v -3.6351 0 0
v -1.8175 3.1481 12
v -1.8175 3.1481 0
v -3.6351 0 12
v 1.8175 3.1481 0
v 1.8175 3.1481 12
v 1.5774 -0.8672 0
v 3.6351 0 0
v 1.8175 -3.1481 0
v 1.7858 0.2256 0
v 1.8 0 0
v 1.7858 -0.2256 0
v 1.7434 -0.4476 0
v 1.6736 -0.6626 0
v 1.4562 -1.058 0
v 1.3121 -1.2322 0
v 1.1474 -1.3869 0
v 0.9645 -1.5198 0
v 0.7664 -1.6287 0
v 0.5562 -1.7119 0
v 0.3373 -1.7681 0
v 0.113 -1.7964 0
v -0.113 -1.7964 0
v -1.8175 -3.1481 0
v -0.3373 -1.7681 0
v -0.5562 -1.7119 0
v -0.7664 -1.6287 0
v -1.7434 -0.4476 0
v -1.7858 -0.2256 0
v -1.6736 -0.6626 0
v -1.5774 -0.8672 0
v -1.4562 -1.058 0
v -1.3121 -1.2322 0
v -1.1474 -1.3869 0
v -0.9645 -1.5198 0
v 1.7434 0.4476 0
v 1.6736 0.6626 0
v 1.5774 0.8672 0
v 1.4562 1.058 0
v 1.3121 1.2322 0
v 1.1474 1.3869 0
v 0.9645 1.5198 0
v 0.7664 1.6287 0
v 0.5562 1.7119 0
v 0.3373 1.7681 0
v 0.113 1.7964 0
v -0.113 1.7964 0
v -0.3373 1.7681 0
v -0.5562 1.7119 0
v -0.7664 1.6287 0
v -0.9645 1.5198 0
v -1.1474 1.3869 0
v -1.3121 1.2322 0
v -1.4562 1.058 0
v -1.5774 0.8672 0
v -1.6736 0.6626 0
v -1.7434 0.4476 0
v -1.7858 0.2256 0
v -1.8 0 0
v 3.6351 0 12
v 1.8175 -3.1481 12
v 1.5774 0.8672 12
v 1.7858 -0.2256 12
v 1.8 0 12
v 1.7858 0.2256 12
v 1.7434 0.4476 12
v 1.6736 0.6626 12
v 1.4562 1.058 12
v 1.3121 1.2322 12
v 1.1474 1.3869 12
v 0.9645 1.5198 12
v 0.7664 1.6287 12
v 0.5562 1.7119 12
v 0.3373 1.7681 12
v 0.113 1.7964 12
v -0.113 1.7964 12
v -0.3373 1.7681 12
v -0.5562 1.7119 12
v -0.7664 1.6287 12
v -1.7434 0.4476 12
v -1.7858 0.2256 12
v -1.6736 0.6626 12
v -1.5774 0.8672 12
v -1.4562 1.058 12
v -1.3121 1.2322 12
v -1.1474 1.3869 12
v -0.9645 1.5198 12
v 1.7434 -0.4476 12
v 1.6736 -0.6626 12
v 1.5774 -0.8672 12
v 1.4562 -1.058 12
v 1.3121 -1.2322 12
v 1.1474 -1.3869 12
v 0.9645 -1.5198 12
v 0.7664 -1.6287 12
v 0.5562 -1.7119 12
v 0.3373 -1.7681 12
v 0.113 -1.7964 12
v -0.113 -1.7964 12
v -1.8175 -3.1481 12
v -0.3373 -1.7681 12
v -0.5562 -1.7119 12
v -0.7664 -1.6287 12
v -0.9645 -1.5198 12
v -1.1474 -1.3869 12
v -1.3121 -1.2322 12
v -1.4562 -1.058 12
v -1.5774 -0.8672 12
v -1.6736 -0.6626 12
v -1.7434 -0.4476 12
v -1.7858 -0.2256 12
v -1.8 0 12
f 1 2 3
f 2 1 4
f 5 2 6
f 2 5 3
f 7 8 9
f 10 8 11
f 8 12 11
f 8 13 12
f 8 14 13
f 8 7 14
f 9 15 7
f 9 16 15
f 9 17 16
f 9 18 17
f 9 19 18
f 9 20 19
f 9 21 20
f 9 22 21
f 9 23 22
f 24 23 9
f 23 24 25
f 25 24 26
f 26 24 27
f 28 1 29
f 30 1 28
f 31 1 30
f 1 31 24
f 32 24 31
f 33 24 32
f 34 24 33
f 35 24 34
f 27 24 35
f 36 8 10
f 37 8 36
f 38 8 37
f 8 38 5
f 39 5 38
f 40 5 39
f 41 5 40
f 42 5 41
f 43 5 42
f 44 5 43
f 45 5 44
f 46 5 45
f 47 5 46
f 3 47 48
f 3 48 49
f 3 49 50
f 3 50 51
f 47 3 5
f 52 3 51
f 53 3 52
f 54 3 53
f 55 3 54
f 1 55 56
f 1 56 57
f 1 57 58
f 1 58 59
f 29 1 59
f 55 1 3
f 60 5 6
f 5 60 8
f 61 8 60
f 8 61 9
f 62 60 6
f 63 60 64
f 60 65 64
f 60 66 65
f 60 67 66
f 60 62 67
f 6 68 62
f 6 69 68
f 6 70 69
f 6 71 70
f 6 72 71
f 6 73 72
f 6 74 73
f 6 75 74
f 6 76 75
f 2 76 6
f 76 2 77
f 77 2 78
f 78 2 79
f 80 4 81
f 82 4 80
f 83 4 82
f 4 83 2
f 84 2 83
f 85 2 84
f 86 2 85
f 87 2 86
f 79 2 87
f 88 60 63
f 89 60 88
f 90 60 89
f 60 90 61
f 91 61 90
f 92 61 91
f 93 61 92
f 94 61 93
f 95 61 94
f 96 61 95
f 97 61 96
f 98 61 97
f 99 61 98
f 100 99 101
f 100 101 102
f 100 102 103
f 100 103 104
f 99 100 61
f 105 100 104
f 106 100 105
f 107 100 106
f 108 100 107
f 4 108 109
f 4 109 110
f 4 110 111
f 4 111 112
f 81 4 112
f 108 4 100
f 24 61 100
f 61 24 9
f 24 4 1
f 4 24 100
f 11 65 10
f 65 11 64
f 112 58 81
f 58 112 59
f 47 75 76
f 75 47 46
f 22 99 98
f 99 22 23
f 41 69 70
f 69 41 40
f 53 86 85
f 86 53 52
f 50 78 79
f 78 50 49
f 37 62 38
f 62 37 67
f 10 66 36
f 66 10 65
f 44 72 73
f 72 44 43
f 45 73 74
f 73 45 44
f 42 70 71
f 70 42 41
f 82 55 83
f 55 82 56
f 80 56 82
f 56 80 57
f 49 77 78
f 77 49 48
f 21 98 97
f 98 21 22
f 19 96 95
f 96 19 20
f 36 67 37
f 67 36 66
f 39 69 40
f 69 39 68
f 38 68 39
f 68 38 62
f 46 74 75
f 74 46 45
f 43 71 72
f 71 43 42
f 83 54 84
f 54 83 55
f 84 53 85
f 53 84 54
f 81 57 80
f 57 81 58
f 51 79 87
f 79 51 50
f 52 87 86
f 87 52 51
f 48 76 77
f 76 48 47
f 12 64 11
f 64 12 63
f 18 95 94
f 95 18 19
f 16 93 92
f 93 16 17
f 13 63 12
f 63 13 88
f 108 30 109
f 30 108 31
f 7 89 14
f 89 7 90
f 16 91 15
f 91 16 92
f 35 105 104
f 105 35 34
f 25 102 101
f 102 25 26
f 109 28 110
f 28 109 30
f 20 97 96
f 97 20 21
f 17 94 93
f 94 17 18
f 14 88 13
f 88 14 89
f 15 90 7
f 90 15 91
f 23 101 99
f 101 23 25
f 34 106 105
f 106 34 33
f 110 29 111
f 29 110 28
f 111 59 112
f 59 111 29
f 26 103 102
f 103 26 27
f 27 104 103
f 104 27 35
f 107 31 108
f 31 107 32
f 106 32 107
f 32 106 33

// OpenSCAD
$fn = 50;


difference() {
	union() {
		translate(v = [0, 0, 0]) {
			rotate(a = [0, 0, 0]) {
				translate(v = [0, 0, 0]) {
					rotate(a = [0, 0, 0]) {
						linear_extrude(height = 12) {
							polygon(points = [[3.6351000000, 0.0000000000], [1.8175500000, 3.1480889453], [-1.8175500000, 3.1480889453], [-3.6351000000, 0.0000000000], [-1.8175500000, -3.1480889453], [1.8175500000, -3.1480889453]]);
						}
					}
				}
			}
		}
	}
	union() {
		translate(v = [0, 0, 0]) {
			rotate(a = [0, 0, 0]) {
				cylinder(h = 12, r = 1.8000000000);
			}
		}
	}
}
